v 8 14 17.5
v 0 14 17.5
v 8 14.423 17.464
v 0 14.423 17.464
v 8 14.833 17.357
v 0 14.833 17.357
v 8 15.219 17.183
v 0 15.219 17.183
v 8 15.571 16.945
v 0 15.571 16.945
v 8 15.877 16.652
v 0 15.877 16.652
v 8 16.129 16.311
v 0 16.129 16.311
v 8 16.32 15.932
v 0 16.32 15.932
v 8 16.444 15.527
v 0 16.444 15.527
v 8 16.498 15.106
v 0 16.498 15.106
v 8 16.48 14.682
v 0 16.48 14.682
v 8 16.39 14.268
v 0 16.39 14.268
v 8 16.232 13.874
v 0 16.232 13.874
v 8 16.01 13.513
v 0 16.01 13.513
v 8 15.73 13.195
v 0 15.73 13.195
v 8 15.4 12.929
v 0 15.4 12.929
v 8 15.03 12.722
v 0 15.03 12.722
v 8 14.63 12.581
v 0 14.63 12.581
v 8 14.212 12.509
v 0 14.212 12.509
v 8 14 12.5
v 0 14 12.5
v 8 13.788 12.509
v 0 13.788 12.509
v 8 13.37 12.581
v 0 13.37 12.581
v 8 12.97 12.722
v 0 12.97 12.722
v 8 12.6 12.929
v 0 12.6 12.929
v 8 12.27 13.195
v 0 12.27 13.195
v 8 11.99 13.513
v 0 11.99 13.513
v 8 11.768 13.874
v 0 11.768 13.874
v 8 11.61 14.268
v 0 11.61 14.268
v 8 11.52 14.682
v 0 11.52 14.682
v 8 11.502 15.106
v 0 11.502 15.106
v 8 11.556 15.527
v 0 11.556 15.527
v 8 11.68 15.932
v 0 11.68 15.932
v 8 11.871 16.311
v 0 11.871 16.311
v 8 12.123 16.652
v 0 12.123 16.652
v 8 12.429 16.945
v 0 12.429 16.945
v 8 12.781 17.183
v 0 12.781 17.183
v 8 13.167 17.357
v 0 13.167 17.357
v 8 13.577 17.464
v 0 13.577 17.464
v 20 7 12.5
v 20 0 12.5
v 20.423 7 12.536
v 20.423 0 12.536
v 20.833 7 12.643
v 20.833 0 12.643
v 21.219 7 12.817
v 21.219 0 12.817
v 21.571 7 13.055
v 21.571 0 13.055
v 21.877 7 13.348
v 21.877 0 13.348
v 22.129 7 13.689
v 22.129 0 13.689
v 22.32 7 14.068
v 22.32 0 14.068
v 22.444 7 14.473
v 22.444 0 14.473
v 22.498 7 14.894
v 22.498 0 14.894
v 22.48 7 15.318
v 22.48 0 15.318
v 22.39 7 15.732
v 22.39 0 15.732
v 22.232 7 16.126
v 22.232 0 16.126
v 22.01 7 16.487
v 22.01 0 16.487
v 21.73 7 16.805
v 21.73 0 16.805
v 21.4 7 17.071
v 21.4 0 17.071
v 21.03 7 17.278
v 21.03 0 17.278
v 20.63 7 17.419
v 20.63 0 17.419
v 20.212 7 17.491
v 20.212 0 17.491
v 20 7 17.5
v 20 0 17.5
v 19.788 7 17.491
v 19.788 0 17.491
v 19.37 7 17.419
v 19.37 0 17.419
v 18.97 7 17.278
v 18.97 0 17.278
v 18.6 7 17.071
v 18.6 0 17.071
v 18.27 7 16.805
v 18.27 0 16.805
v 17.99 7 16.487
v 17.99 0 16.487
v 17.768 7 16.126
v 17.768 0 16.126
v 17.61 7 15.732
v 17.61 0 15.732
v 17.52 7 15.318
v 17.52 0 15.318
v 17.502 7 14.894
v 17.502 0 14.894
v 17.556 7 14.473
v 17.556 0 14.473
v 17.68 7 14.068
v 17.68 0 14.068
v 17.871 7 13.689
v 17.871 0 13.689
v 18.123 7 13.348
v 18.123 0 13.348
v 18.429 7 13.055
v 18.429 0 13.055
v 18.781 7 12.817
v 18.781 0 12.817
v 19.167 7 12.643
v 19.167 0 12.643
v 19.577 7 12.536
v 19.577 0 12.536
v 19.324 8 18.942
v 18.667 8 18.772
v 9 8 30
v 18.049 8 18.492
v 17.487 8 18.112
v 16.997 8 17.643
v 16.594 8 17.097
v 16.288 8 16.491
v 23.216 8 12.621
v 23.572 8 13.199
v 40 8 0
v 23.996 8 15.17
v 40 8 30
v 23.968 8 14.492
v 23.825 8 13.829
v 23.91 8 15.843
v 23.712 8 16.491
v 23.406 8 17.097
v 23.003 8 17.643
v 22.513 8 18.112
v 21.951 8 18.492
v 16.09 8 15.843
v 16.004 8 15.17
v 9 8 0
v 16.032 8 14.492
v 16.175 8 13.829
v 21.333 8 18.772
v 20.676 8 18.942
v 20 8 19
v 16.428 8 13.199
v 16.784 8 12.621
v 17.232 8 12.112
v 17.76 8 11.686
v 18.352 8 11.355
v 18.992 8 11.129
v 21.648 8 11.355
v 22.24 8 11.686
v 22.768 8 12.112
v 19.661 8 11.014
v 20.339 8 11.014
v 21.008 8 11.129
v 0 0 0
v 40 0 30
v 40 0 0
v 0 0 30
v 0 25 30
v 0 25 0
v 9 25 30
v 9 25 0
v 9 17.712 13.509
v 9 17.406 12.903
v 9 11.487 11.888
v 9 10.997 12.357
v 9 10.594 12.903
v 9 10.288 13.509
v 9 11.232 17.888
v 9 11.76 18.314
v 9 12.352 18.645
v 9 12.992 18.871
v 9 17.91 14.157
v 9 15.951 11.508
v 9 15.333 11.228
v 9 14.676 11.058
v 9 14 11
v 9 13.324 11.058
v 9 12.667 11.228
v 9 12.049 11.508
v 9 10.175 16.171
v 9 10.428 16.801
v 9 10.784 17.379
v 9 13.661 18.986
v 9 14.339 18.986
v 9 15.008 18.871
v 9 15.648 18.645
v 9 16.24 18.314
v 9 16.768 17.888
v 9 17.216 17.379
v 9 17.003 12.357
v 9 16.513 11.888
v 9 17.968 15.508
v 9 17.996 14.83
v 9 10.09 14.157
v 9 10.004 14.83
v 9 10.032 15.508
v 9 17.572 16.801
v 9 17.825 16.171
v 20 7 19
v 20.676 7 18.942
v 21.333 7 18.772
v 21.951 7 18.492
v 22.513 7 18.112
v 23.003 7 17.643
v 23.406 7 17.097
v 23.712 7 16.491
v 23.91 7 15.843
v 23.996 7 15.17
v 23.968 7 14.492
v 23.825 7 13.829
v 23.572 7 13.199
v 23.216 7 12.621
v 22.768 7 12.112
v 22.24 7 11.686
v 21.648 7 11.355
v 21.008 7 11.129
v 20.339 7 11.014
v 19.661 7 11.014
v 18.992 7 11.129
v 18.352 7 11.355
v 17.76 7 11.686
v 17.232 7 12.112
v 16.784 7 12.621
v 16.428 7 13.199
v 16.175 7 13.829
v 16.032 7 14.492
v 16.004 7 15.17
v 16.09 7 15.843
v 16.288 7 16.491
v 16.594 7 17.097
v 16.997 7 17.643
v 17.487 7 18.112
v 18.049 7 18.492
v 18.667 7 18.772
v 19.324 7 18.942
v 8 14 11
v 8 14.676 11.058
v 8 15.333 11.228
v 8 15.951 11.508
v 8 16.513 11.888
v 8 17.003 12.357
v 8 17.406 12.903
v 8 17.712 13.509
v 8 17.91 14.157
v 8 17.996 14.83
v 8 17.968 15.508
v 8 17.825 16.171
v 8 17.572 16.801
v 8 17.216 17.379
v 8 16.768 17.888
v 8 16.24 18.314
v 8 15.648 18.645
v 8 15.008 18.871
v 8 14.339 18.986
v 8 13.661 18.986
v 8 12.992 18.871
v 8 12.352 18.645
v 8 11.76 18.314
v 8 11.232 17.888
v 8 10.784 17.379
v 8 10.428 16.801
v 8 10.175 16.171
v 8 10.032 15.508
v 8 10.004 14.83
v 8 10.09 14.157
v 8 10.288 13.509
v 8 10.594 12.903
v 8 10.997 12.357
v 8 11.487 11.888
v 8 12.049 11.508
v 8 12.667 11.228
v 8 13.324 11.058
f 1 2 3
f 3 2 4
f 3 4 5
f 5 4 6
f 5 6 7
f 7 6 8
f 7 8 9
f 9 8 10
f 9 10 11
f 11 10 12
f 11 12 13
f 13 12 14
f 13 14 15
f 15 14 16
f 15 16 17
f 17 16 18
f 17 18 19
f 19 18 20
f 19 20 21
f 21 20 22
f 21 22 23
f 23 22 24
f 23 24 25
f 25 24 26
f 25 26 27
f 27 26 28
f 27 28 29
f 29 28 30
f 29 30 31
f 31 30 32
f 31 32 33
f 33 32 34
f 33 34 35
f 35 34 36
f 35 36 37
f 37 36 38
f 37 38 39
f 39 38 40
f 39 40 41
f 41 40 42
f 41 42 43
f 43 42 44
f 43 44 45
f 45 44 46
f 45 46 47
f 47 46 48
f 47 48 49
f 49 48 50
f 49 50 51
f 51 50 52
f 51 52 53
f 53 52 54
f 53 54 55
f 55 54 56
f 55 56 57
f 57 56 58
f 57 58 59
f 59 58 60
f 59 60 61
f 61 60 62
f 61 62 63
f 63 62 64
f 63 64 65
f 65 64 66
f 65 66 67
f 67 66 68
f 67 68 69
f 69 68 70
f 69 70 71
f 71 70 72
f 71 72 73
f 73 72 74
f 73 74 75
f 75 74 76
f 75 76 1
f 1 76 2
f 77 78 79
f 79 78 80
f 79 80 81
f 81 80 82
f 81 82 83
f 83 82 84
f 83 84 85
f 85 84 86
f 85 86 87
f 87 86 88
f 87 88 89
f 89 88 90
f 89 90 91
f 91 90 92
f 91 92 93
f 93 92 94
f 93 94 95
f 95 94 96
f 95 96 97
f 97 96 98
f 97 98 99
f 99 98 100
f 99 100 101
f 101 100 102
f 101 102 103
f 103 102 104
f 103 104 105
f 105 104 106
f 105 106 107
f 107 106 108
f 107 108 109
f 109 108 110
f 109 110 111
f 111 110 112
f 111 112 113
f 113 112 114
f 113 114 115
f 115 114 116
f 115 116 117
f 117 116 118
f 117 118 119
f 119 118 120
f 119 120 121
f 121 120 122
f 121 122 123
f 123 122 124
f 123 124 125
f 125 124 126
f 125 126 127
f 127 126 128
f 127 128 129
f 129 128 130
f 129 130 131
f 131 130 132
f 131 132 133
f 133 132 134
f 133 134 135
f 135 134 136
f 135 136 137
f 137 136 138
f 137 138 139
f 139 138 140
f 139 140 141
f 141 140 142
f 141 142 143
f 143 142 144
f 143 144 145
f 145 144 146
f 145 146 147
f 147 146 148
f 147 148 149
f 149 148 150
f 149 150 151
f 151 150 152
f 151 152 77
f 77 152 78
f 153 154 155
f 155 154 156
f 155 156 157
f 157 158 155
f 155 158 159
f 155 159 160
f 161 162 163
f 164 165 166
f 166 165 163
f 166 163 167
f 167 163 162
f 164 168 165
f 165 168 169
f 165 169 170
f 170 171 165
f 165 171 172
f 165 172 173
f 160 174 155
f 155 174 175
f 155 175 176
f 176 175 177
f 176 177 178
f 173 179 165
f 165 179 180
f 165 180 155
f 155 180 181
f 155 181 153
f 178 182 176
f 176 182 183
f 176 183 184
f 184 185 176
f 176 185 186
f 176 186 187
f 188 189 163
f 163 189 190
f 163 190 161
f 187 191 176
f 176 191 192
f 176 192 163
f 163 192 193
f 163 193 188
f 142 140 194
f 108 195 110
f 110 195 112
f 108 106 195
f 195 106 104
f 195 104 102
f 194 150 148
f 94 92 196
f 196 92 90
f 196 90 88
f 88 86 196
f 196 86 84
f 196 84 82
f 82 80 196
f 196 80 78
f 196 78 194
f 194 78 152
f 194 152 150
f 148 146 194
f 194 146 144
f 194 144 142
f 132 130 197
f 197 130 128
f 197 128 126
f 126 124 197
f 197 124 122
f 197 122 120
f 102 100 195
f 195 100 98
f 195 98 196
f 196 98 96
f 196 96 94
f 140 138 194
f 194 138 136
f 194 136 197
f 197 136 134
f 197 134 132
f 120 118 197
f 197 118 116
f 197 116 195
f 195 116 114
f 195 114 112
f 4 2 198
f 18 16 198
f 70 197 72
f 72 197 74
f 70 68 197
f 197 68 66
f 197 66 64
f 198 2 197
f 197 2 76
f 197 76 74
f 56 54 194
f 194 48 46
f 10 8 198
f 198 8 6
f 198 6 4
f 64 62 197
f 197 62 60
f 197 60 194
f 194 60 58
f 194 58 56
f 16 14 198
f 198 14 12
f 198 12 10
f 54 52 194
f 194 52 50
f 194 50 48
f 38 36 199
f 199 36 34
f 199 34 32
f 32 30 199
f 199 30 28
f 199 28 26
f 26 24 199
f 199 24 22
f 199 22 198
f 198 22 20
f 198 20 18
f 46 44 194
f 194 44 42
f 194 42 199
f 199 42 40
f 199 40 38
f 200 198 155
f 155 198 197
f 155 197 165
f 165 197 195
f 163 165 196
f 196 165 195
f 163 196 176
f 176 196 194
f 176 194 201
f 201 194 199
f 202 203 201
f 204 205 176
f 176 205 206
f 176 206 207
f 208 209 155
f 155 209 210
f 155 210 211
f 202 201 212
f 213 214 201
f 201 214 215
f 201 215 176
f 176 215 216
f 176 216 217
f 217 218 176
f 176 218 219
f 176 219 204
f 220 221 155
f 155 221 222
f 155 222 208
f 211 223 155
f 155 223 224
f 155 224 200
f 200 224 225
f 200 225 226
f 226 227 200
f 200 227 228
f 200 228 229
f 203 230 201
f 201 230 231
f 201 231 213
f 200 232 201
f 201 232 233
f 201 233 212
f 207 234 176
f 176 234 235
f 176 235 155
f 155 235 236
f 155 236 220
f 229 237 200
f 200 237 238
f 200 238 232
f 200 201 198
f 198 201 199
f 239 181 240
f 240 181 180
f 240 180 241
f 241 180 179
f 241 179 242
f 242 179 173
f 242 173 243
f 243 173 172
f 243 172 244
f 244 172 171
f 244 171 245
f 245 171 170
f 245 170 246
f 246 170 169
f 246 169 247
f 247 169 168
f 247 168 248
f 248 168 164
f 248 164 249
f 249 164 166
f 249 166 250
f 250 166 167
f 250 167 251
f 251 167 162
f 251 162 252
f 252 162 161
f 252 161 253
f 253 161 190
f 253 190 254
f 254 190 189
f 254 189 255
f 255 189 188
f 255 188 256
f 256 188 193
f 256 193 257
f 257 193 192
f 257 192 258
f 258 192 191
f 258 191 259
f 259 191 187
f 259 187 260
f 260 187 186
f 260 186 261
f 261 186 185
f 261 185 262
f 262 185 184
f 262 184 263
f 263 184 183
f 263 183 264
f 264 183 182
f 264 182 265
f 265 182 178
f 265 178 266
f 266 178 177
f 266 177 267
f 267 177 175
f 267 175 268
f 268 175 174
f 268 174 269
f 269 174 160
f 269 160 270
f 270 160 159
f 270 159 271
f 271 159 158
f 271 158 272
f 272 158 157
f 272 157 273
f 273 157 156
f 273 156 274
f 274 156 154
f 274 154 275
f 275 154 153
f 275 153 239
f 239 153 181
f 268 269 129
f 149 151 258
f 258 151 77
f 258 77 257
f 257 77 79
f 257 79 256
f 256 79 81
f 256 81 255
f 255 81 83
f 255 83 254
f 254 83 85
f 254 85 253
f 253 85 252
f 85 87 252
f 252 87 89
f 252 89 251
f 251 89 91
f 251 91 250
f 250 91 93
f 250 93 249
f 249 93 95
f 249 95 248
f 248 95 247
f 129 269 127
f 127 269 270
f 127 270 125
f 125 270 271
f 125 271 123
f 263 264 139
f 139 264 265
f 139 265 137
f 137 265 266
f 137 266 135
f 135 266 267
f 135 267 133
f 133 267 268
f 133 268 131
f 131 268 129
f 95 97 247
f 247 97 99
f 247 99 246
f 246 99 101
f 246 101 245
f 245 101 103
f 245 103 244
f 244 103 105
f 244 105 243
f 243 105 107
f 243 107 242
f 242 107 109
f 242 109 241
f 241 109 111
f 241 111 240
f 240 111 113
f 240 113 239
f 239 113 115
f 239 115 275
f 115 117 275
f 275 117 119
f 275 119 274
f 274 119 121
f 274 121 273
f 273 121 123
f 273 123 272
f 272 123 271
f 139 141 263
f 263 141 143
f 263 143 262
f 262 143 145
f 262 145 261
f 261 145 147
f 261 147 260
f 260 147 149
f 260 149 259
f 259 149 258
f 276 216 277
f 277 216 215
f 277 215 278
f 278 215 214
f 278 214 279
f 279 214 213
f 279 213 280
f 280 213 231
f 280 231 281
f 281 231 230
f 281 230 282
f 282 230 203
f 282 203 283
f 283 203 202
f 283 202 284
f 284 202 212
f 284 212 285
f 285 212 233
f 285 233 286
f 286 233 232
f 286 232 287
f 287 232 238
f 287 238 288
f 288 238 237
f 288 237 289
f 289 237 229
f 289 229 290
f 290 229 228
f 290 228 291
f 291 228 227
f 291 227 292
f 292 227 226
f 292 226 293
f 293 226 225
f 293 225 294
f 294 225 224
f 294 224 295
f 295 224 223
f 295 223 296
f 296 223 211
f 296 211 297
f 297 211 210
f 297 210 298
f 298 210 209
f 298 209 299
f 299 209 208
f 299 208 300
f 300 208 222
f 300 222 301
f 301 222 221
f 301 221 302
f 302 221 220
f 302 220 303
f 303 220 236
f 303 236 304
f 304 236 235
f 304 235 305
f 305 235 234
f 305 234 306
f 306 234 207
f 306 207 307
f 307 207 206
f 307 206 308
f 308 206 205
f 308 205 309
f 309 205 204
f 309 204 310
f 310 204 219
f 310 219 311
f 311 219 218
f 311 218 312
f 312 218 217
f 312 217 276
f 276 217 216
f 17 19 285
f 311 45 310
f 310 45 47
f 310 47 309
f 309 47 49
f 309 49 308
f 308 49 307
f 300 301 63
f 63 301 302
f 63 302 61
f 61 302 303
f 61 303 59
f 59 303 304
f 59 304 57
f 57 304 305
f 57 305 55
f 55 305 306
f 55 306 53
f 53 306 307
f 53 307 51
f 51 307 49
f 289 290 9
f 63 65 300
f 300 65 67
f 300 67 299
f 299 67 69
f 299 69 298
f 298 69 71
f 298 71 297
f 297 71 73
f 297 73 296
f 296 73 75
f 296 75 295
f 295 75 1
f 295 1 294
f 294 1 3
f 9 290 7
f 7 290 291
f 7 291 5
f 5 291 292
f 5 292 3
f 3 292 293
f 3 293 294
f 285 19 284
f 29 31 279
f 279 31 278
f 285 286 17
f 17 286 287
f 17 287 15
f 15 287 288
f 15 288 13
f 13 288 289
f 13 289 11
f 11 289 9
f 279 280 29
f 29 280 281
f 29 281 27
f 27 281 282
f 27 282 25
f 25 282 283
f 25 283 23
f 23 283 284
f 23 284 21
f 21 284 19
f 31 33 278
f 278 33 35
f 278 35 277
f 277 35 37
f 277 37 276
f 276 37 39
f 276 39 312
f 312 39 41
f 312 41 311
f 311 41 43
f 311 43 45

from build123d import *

# Parameters (mm, degrees)
SKETCH_3_W          = 40
SKETCH_3_H          = 30
SKETCH_3_R          = 2.5
EXTRUDE_3_DEPTH     = 8
SKETCH_4_W          = 30
SKETCH_4_H          = 25
SKETCH_4_R          = 2.5
EXTRUDE_4_DEPTH     = 9
SKETCH_5_R          = 4
CUT_EXTRUDE_1_DEPTH = 1
SKETCH_6_R          = 4
CUT_EXTRUDE_2_DEPTH = 1


with BuildPart() as part:
    # 스케치3 → 보스-돌출3 (new body)
    with BuildSketch(Plane(origin=(0, 0, 0), x_dir=(1, 0, 0), z_dir=(0, 1, 0))):
        with Locations((20, -15)):
            Rectangle(SKETCH_3_W, SKETCH_3_H)
        with Locations(Location((20, -15, 0), (0, 0, 270))):
            Circle(SKETCH_3_R, mode=Mode.SUBTRACT)
    extrude(amount=EXTRUDE_3_DEPTH)

    # 스케치4 → 보스-돌출4 (add)
    with BuildSketch(Plane(origin=(0, 0, 0), x_dir=(0, 0, -1), z_dir=(1, 0, 0))):
        with Locations((-15, 12.5)):
            Rectangle(SKETCH_4_W, SKETCH_4_H)
        with Locations((-15, 14)):
            Circle(SKETCH_4_R, mode=Mode.SUBTRACT)
    extrude(amount=EXTRUDE_4_DEPTH)

    # 스케치5 → 컷-돌출1 (cut)
    with BuildSketch(Plane(origin=(0, 8, 0), x_dir=(1, 0, 0), z_dir=(0, 1, 0))):
        with Locations(Location((20, -15, 0), (0, 0, 270))):
            Circle(SKETCH_5_R)
    extrude(amount=-CUT_EXTRUDE_1_DEPTH, mode=Mode.SUBTRACT)

    # 스케치6 → 컷-돌출2 (cut)
    with BuildSketch(Plane(origin=(9, 0, 0), x_dir=(0, 0, -1), z_dir=(1, 0, 0))):
        with Locations((-15, 14)):
            Circle(SKETCH_6_R)
    extrude(amount=-CUT_EXTRUDE_2_DEPTH, mode=Mode.SUBTRACT)


solid = part.part
